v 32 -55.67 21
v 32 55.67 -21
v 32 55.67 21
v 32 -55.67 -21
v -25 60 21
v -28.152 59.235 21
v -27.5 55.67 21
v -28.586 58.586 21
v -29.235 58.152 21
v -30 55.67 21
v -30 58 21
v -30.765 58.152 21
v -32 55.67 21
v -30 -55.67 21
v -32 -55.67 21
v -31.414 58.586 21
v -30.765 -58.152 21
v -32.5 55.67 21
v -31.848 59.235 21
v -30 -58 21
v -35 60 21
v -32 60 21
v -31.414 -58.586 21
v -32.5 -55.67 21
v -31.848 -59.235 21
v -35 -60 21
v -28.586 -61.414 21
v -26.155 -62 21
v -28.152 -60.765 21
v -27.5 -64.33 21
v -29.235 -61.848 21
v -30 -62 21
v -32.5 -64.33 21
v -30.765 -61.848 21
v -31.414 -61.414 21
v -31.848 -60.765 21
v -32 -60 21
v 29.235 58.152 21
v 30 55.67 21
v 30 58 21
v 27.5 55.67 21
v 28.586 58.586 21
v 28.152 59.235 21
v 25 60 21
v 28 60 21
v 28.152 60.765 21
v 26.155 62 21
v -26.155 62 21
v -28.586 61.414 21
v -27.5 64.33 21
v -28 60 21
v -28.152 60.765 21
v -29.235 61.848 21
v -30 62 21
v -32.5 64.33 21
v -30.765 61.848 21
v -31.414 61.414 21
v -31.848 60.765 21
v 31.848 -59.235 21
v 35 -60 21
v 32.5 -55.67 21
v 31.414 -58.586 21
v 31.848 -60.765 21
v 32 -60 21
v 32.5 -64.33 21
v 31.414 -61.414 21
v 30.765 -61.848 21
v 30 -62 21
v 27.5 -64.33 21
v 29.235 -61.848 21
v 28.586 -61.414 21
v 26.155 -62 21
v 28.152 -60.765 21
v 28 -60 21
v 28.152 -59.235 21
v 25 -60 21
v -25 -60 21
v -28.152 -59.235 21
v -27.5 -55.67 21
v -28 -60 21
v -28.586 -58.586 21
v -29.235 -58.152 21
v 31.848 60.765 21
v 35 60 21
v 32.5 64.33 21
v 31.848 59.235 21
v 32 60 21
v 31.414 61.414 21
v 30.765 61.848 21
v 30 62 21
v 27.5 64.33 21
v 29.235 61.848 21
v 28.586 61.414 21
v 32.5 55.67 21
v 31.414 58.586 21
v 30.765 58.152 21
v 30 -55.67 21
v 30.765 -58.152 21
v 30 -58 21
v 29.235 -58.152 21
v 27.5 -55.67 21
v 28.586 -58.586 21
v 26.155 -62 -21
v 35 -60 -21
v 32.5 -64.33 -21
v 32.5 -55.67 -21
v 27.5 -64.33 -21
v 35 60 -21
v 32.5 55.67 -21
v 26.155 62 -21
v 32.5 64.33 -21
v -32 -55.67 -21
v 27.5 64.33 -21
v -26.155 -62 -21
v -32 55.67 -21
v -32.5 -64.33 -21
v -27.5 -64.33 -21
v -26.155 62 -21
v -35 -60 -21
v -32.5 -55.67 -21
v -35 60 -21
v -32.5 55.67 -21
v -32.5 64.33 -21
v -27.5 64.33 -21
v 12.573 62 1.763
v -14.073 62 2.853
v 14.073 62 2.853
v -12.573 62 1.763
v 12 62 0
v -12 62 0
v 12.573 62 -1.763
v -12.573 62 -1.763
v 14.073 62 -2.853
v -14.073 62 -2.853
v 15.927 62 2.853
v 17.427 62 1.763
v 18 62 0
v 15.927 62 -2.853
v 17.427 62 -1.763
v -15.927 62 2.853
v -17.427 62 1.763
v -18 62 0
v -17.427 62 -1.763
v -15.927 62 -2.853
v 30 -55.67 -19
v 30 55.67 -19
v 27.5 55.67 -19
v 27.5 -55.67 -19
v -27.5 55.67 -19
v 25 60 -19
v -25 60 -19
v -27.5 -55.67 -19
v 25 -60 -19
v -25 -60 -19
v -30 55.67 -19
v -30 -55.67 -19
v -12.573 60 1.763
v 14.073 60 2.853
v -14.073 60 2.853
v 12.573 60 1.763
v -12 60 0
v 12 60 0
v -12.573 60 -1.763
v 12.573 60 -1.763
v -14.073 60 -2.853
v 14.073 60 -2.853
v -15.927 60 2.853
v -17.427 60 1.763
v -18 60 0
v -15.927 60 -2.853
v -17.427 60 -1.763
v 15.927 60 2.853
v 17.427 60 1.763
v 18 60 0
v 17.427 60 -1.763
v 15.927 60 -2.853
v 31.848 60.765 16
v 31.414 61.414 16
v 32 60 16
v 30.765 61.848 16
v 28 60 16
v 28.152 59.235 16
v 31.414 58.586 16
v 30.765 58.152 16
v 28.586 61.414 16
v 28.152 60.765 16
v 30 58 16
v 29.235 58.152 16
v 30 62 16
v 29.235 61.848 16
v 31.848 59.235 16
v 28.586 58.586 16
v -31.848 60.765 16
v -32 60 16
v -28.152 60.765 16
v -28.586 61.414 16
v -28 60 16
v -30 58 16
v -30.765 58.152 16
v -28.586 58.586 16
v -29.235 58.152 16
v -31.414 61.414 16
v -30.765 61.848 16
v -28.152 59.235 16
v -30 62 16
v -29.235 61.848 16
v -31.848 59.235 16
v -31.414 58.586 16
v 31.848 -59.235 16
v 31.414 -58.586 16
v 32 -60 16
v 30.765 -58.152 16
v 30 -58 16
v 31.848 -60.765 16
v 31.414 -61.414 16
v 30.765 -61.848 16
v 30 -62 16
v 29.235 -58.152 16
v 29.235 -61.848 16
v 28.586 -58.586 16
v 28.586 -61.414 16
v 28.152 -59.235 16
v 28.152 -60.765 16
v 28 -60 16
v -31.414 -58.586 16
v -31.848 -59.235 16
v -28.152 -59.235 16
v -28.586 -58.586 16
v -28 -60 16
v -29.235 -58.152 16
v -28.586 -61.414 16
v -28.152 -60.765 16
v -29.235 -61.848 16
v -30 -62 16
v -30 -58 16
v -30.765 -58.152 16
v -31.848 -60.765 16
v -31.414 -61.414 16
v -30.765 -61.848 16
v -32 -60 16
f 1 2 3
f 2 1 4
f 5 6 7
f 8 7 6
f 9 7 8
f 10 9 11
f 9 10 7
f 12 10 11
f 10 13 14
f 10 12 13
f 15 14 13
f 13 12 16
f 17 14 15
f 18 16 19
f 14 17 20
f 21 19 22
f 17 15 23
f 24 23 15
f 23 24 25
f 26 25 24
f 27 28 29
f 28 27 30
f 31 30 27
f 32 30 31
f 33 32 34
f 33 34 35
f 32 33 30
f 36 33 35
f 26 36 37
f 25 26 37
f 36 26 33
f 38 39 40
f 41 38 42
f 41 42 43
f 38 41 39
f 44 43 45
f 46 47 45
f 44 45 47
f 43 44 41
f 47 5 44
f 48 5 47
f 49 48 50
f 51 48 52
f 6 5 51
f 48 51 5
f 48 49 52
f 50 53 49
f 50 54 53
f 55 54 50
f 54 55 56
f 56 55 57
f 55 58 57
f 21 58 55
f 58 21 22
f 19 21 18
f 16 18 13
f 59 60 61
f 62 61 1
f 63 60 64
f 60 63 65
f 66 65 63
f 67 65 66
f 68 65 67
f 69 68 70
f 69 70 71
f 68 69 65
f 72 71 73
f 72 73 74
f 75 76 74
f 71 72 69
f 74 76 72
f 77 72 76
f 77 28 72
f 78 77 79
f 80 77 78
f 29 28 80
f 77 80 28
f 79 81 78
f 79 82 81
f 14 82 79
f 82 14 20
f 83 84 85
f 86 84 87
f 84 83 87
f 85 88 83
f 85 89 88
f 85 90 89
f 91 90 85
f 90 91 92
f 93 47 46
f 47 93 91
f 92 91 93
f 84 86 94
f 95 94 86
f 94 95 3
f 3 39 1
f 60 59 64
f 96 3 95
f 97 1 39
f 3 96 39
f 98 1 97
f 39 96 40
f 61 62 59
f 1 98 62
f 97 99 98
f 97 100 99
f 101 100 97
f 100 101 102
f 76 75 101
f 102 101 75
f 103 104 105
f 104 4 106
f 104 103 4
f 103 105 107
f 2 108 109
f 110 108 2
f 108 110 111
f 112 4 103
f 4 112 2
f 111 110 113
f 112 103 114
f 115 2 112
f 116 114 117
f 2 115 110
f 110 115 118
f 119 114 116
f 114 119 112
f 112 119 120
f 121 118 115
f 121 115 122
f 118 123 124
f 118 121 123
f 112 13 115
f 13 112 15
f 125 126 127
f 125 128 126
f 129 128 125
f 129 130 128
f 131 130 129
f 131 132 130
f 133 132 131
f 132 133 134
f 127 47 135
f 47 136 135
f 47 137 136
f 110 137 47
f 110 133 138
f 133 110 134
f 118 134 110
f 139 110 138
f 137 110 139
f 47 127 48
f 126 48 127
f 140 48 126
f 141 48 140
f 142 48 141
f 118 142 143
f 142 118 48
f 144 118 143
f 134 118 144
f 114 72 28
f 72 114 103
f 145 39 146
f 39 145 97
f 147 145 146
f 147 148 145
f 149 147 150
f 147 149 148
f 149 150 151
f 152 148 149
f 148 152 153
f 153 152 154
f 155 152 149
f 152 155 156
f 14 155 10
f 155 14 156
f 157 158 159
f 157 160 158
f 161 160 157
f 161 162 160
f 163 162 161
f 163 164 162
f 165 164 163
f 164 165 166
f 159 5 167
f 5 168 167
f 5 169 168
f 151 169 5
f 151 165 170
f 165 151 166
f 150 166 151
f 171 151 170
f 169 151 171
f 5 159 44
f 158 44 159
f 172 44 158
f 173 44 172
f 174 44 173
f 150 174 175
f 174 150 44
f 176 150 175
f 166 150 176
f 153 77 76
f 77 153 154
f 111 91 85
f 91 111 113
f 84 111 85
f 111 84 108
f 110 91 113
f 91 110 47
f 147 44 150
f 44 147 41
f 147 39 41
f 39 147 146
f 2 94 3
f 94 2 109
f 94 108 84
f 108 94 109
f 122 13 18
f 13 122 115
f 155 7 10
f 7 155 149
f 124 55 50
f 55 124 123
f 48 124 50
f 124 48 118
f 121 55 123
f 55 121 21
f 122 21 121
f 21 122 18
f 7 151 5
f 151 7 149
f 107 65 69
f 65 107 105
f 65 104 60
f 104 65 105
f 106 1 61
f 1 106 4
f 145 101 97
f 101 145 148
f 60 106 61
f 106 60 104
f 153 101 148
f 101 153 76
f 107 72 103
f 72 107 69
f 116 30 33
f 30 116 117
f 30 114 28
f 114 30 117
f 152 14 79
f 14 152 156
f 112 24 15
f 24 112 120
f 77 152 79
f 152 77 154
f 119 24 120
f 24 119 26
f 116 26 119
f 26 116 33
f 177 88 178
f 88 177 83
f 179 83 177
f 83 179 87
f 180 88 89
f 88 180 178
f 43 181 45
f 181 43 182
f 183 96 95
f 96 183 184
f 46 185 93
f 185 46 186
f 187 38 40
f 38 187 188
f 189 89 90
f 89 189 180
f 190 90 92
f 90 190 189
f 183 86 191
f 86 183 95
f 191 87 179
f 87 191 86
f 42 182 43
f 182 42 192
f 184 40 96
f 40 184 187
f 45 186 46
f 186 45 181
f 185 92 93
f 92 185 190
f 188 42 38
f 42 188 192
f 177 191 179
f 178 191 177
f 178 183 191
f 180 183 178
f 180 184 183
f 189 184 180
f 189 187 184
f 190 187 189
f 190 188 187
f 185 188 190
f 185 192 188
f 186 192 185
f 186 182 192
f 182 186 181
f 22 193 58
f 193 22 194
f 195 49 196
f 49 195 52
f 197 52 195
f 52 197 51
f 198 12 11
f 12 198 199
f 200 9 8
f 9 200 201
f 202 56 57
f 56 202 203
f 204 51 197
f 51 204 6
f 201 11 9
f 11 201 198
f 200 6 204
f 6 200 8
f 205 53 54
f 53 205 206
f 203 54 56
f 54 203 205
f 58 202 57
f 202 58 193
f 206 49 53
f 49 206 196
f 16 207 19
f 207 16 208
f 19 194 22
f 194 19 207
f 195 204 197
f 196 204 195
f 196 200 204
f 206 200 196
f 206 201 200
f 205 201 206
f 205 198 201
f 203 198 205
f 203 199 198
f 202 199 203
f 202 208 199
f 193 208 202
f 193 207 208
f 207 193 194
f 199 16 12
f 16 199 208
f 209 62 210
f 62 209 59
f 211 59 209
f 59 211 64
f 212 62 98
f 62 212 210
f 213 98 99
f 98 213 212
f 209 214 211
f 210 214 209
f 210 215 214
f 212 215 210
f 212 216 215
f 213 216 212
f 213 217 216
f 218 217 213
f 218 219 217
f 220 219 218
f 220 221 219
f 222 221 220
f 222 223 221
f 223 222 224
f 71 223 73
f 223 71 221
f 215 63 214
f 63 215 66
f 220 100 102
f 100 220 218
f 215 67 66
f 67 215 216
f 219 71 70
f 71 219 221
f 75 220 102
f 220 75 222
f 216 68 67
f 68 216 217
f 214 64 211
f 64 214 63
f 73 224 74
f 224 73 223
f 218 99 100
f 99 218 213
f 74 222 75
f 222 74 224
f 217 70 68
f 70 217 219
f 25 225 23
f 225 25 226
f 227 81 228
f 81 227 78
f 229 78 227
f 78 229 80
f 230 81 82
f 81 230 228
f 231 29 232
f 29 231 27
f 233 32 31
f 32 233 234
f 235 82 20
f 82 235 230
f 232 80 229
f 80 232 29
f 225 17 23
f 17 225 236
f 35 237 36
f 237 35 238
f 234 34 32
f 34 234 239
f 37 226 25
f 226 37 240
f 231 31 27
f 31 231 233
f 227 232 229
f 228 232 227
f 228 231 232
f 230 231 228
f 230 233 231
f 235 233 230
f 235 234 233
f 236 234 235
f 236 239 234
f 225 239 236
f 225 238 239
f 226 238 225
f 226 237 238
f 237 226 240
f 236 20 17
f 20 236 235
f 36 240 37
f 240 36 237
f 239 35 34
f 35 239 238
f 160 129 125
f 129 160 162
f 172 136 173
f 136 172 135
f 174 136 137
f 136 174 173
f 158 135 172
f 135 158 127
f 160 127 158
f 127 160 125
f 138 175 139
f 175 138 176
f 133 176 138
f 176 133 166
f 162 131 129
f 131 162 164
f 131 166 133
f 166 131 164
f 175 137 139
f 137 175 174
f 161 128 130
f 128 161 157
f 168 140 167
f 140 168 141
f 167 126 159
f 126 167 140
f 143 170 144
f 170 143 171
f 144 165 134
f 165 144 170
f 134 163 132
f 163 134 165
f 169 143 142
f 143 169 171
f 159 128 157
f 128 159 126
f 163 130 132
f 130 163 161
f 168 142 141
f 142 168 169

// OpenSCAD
t=2;

difference() {
    union() {
        difference() {
            cube([60+2*t,120+2*t,40+t],center=true);
            translate([0,0,t])cube([60,120,40+t],center=true);
        }

        translate([60/2,120/2,0]) cylinder(40+t,10/2,10/2,center=true,$fn=6);
        translate([-60/2,120/2,0]) cylinder(40+t,10/2,10/2,center=true,$fn=6);
        translate([60/2,-120/2,0]) cylinder(40+t,10/2,10/2,center=true,$fn=6);
        translate([-60/2,-120/2,0]) cylinder(40+t,10/2,10/2,center=true,$fn=6);
    }

    translate([60/2,120/2,40+t-5]) cylinder(40+t,4/2,4/2,center=true,$fn=16);
    translate([-60/2,120/2,40+t-5]) cylinder(40+t,4/2,4/2,center=true,$fn=16);
    translate([60/2,-120/2,40+t-5]) cylinder(40+t,4/2,4/2,center=true,$fn=16);
    translate([-60/2,-120/2,40+t-5]) cylinder(40+t,4/2,4/2,center=true,$fn=16);
    
    translate([15,60,0])rotate([90,0,0])cylinder(20,6/2,6/2,center=true);
    translate([-15,60,0])rotate([90,0,0])cylinder(20,6/2,6/2,center=true);
}
